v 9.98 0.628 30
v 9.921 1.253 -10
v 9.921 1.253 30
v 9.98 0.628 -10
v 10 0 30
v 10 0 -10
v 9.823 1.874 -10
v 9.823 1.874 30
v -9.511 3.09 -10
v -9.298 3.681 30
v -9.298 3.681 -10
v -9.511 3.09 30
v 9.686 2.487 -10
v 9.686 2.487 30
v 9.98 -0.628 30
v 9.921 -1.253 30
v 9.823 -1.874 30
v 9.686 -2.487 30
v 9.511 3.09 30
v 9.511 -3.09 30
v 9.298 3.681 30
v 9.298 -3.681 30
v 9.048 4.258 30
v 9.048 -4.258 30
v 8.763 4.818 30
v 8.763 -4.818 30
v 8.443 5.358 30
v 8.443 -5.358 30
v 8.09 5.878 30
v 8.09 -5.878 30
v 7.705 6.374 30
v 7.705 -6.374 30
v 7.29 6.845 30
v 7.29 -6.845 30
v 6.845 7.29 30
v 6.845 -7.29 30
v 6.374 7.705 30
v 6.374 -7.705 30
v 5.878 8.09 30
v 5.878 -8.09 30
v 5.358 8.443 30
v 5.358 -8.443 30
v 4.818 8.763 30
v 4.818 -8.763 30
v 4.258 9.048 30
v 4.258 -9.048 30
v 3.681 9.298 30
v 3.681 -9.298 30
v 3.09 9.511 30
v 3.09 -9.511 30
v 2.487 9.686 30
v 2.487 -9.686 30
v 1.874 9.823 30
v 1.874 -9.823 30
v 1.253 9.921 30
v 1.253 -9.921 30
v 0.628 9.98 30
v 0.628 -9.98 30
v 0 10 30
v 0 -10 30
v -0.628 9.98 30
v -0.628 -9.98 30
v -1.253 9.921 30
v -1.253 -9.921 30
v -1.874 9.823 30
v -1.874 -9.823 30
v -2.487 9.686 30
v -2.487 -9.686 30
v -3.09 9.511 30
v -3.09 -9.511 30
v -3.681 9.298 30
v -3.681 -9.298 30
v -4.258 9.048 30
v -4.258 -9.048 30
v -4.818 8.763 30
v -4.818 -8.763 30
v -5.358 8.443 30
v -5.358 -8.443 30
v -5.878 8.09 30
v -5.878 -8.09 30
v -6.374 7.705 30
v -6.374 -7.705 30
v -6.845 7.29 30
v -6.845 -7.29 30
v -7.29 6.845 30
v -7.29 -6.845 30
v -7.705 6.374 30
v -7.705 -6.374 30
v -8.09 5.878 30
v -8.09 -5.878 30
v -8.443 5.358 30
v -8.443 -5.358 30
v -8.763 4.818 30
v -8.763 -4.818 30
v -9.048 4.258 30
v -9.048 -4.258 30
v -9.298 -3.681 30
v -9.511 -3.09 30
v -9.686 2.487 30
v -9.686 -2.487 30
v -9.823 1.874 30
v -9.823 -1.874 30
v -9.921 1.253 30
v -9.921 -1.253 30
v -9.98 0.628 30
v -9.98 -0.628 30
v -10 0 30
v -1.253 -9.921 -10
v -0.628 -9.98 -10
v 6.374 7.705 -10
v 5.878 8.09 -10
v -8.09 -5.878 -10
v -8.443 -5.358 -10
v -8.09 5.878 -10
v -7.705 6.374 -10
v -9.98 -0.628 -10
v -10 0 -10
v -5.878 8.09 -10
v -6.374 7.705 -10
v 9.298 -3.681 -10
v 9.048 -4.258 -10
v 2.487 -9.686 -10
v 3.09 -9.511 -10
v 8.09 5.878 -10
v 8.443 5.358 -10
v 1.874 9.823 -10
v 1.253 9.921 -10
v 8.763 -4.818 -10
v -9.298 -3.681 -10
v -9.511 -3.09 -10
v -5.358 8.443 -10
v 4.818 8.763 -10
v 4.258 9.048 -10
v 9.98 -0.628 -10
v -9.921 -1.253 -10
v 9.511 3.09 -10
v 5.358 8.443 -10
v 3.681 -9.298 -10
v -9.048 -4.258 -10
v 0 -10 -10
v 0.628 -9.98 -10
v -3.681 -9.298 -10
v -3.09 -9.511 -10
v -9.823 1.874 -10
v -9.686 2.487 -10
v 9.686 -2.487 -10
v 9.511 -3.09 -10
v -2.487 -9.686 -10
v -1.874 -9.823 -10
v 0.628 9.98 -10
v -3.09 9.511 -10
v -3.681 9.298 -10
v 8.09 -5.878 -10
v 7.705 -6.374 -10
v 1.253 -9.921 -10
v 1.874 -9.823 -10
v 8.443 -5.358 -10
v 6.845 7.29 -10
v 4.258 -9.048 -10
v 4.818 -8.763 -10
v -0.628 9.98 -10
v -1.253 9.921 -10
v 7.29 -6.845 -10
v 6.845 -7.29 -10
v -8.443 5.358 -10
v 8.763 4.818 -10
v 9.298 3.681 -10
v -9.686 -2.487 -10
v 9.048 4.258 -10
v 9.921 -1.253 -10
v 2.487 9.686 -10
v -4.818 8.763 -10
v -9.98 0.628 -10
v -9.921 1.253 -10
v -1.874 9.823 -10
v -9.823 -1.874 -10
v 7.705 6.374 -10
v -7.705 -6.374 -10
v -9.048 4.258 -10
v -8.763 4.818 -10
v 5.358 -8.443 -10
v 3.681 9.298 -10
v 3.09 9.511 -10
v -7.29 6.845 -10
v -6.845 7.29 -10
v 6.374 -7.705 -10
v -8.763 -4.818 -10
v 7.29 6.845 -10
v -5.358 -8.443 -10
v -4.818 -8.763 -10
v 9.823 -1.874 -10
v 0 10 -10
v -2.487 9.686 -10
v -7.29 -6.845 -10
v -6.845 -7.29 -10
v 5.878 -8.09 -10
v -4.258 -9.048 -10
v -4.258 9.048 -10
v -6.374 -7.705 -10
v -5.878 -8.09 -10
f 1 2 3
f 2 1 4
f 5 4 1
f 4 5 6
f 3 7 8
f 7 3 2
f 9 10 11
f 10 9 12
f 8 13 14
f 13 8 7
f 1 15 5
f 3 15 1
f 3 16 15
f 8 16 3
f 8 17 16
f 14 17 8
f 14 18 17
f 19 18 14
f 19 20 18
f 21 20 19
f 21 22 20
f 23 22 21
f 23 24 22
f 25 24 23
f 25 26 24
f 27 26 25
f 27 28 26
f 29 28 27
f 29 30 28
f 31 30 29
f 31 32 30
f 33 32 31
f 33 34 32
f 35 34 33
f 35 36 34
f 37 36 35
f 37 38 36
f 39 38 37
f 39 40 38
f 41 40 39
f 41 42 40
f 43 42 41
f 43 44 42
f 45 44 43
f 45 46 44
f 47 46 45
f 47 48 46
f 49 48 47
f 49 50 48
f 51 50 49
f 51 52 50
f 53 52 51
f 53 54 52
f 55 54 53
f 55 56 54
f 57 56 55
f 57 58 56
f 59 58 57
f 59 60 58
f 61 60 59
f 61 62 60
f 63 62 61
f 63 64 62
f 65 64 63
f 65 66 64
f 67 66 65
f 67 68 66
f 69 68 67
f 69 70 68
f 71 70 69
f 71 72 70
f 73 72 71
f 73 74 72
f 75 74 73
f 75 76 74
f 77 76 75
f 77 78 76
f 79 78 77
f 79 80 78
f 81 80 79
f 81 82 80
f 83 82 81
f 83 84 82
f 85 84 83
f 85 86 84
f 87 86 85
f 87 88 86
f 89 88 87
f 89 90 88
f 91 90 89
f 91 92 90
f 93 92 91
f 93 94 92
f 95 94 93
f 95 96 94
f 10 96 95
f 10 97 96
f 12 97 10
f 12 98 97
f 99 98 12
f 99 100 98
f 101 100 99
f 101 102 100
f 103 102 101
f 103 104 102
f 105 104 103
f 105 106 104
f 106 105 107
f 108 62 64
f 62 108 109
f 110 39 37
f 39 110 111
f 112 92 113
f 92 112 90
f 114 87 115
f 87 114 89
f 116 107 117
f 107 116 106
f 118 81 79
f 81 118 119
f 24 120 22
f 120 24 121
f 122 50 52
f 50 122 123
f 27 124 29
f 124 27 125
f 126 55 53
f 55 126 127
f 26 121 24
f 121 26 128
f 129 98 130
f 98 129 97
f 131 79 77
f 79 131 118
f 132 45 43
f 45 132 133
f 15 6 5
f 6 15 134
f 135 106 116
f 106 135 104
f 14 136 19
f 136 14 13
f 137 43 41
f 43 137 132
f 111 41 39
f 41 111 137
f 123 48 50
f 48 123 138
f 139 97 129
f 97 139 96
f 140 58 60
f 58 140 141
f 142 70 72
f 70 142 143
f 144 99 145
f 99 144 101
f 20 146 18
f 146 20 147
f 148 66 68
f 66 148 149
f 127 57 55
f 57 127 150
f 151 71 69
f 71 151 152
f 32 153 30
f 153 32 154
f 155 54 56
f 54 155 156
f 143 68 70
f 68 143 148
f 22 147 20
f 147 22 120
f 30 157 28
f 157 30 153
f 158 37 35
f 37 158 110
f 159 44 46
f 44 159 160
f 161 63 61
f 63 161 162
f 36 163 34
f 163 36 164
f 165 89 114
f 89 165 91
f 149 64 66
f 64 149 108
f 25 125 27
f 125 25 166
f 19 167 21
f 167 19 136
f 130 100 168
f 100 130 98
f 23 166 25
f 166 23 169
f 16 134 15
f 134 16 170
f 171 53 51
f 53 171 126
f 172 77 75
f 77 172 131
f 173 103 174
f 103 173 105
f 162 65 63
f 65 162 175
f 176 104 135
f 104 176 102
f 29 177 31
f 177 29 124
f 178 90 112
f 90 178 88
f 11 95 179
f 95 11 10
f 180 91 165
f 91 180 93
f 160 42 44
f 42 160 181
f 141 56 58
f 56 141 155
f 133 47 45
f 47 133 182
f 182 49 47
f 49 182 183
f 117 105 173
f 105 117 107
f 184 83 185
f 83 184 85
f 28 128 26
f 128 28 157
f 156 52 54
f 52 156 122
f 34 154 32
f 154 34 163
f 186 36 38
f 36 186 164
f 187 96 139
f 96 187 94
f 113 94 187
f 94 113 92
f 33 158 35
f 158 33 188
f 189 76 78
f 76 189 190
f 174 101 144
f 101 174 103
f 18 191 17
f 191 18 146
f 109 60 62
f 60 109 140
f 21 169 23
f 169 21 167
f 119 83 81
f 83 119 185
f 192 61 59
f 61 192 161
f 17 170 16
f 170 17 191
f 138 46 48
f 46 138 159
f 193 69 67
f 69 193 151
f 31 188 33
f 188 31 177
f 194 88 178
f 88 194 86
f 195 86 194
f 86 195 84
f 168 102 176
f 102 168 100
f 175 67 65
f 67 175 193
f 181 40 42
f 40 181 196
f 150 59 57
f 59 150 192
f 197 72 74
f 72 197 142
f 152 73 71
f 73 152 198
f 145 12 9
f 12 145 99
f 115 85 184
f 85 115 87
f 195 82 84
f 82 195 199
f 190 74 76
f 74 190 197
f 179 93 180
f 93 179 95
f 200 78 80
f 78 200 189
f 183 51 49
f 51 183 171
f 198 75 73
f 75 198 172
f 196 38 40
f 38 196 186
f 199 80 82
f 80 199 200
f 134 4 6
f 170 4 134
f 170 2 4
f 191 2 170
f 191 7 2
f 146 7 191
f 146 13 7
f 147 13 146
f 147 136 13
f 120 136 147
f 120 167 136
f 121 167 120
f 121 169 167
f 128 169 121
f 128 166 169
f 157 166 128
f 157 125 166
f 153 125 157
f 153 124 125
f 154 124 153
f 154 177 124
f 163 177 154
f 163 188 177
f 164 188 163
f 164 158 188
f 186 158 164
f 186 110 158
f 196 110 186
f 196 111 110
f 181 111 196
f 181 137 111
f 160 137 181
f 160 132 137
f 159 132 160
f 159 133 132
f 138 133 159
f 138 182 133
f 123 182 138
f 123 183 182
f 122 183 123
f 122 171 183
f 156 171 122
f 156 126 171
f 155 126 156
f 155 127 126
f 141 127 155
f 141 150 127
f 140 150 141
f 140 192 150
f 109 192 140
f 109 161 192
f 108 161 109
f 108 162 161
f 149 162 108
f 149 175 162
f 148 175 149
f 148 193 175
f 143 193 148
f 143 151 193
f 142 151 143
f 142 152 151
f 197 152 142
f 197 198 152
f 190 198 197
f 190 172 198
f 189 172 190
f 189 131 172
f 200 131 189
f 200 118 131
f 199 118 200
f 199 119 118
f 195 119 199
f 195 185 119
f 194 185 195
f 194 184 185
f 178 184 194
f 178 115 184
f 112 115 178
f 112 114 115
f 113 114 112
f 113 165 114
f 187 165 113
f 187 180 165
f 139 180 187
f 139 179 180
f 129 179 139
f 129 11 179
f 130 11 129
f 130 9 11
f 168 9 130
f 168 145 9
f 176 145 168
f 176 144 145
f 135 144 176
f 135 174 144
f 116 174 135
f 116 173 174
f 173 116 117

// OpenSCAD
// Parameters for the components
module central_cylinder() {
    cylinder(h = 20, r = 10, $fn = 100); // Central cylinder: height 20, radius 10
}

module input_cylinder() {
    cylinder(h = 10, r = 10, $fn = 100); // Input cylinder: height 10, radius 10
}

module output_cylinder() {
    cylinder(h = 10, r = 10, $fn = 100); // Output cylinder: height 10, radius 10
}

// Assembly of the flexible coupling
module flexible_coupling() {
    // Layer 1: Input cylinder
    translate([0, 0, 20]) input_cylinder();
    
    // Layer 2: Central cylinder
    central_cylinder();
    
    // Layer 3: Output cylinder
    translate([0, 0, -10]) output_cylinder();
}

// Render the model
flexible_coupling();
